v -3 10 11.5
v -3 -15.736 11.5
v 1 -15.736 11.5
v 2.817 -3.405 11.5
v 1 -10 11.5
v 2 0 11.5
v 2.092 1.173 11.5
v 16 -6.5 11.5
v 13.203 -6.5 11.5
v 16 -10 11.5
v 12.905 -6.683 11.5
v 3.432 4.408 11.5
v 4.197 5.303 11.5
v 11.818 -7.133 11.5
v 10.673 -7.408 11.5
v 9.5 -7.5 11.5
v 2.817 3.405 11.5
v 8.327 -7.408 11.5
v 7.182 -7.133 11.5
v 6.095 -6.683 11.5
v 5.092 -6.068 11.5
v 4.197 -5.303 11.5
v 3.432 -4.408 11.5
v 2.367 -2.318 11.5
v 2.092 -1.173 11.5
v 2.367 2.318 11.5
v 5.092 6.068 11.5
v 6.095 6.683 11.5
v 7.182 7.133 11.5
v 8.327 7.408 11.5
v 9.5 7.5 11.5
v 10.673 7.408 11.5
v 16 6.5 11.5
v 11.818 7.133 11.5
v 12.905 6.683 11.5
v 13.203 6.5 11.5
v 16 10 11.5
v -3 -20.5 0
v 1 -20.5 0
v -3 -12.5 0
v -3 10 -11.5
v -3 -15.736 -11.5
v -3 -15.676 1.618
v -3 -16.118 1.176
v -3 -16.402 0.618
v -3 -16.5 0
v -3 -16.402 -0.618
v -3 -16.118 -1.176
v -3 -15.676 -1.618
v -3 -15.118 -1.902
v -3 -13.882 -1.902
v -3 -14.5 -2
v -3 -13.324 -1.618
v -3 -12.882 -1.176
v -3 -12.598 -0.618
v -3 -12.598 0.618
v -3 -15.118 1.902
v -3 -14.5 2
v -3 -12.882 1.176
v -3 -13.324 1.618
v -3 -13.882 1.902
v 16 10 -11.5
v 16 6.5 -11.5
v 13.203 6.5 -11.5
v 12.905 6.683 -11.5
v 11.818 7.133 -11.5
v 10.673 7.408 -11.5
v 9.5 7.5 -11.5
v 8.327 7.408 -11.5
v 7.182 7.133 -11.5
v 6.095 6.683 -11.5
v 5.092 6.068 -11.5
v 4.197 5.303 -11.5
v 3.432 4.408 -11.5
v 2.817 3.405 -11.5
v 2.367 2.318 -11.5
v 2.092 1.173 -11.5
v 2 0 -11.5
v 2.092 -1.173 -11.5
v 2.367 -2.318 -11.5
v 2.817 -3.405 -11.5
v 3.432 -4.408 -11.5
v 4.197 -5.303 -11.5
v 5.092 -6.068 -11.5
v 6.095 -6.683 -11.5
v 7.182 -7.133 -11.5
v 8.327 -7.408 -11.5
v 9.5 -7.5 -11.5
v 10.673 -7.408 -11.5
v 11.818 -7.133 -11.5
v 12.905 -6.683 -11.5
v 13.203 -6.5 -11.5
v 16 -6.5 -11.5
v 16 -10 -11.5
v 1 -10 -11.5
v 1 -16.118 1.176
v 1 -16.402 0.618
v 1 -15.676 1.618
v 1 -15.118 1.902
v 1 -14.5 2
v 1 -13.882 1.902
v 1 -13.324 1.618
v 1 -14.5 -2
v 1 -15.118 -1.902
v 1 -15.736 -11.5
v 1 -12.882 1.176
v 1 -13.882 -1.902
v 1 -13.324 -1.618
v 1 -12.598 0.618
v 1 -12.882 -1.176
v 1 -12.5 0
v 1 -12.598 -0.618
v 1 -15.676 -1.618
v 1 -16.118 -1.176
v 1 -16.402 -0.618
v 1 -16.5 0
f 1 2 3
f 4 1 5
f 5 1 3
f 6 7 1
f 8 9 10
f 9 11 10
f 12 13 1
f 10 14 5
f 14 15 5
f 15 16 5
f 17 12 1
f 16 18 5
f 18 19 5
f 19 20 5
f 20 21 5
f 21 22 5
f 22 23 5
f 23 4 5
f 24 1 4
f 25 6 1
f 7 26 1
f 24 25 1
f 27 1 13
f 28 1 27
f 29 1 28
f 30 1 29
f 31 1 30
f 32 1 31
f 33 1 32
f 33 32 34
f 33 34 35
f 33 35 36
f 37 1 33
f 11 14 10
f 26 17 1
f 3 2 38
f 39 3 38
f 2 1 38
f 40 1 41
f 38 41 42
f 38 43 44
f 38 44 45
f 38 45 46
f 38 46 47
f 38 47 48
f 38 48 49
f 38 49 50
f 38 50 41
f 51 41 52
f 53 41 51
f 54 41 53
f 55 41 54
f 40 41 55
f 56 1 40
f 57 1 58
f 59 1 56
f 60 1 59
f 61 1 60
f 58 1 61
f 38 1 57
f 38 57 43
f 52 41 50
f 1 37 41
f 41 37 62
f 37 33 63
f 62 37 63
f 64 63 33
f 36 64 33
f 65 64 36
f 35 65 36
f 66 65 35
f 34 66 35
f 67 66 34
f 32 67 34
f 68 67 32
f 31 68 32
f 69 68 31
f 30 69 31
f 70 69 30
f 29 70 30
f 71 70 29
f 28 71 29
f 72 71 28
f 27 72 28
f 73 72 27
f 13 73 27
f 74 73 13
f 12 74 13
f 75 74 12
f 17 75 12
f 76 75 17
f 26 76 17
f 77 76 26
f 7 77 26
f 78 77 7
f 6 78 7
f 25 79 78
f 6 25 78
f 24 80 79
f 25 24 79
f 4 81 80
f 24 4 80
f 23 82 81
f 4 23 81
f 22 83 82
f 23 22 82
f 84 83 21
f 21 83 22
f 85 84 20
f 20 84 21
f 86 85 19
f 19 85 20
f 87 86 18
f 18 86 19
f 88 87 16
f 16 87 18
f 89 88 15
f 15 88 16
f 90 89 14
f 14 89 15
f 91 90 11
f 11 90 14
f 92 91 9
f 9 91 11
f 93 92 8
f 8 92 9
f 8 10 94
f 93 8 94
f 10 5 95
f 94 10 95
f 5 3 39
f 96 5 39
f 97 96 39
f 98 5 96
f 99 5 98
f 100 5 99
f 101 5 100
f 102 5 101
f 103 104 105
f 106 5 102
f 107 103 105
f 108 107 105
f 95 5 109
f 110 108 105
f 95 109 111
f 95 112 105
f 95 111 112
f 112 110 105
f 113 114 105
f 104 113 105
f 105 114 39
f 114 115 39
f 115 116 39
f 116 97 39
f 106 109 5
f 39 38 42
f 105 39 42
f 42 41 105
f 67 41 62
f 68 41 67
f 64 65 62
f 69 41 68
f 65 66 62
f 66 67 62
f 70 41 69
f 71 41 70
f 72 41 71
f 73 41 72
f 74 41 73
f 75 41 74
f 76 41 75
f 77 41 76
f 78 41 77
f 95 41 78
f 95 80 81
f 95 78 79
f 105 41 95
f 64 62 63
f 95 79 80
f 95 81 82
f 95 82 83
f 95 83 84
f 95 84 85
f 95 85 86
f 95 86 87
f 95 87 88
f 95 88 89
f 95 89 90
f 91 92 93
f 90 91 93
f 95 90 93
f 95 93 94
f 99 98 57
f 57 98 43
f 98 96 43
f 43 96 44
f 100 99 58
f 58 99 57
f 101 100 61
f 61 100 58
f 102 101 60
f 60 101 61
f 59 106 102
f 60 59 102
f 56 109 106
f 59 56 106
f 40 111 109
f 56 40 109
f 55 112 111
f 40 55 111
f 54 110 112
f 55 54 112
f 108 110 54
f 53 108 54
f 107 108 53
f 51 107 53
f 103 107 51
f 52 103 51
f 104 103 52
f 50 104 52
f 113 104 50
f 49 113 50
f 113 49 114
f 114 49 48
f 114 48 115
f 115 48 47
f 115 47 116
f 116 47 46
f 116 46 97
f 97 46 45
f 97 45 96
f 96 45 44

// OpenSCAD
// file: ../libs/linear_bearing.scad
//By Glen Chung, 2013.
//Dual licenced under Creative Commons Attribution-Share Alike 3.0 and LGPL2 or later

include <MCAD/units.scad>
include <MCAD/materials.scad>

LINEAR_BEARING_dr = 0;  //Inscribed circle
LINEAR_BEARING_D  = 1;  //Outer diameter
LINEAR_BEARING_L  = 2;  //Length
LINEAR_BEARING_B  = 3;  //Outer locking groove B
LINEAR_BEARING_D1 = 4;  //Outer locking groove D1
LINEAR_BEARING_W  = 5;  //W


// Common bearing names
LinearBearing = "LM8UU";

// Linear Bearing dimensions
//  model == "XXXXX"   ?   [    dr,      D,      L,        B,      D1,       W]:
function linearBearingDimensions(model) =
    model == "LM3UU"   ?   [  3*mm,   7*mm,  10*mm,   0.0*mm,   0.0*mm, 0.00*mm]:
    model == "LM4UU"   ?   [  4*mm,   8*mm,  12*mm,   0.0*mm,   0.0*mm, 0.00*mm]:
    model == "LM5UU"   ?   [  5*mm,  10*mm,  15*mm,  10.2*mm,   9.6*mm, 1.10*mm]:
    model == "LM6UU"   ?   [  6*mm,  12*mm,  19*mm,  13.5*mm,  11.5*mm, 1.10*mm]:
    model == "LM8SUU"  ?   [  8*mm,  15*mm,  17*mm,  11.5*mm,  14.3*mm, 1.10*mm]:
    model == "LM10UU"  ?   [ 10*mm,  19*mm,  29*mm,  22.0*mm,  18.0*mm, 1.30*mm]:
    model == "LM12UU"  ?   [ 12*mm,  21*mm,  30*mm,  23.0*mm,  20.0*mm, 1.30*mm]:
    model == "LM13UU"  ?   [ 13*mm,  23*mm,  32*mm,  23.0*mm,  22.0*mm, 1.30*mm]:
    model == "LM16UU"  ?   [ 16*mm,  28*mm,  37*mm,  26.5*mm,  27.0*mm, 1.60*mm]:
    model == "LM20UU"  ?   [ 20*mm,  32*mm,  42*mm,  30.5*mm,  30.5*mm, 1.60*mm]:
    model == "LM25UU"  ?   [ 25*mm,  40*mm,  59*mm,  41.0*mm,  38.0*mm, 1.85*mm]:
    model == "LM30UU"  ?   [ 30*mm,  45*mm,  64*mm,  44.5*mm,  43.0*mm, 1.85*mm]:
    model == "LM35UU"  ?   [ 35*mm,  52*mm,  70*mm,  49.5*mm,  49.0*mm, 2.10*mm]:
    model == "LM40UU"  ?   [ 40*mm,  60*mm,  80*mm,  60.5*mm,  57.0*mm, 2.10*mm]:
    model == "LM50UU"  ?   [ 50*mm,  80*mm, 100*mm,  74.0*mm,  76.5*mm, 2.60*mm]:
    model == "LM60UU"  ?   [ 60*mm,  90*mm, 110*mm,  85.0*mm,  86.5*mm, 3.15*mm]:
    model == "LM80UU"  ?   [ 80*mm, 120*mm, 140*mm, 105.5*mm, 116.0*mm, 4.15*mm]:
    model == "LM100UU" ?   [100*mm, 150*mm, 150*mm, 125.5*mm, 145.0*mm, 4.15*mm]:
  /*model == "LM8UU"   ?*/ [  8*mm,  15*mm,  24*mm,  17.5*mm,  14.3*mm, 1.10*mm];


function linearBearing_dr(model) = linearBearingDimensions(model)[LINEAR_BEARING_dr];
function linearBearing_D(model)  = linearBearingDimensions(model)[LINEAR_BEARING_D];
function linearBearing_L(model)  = linearBearingDimensions(model)[LINEAR_BEARING_L];
function linearBearing_B(model)  = linearBearingDimensions(model)[LINEAR_BEARING_B];
function linearBearing_D1(model) = linearBearingDimensions(model)[LINEAR_BEARING_D1];
function linearBearing_W(model)  = linearBearingDimensions(model)[LINEAR_BEARING_W];

module linearBearing(pos=[0,0,0], angle=[0,0,0], model=LinearBearing,
                material=Steel, sideMaterial=BlackPaint) {
  dr = linearBearing_dr(model);
  D  = linearBearing_D(model);
  L  = linearBearing_L(model);
  B  = linearBearing_B(model);
  D1 = linearBearing_D1(model);
  W  = linearBearing_W(model);

  innerRim = dr + (D - dr) * 0.2;
  outerRim = D - (D - dr) * 0.2;
  midSink = W/4;

  translate(pos) rotate(angle) union() {
    color(material)
      difference() {
        // Basic ring
        Ring([0,0,0], D, dr, L, material, material);

        if(W) {
          // Side shields
          Ring([0,0,-epsilon], outerRim, innerRim, L*epsilon+midSink, sideMaterial, material);
          Ring([0,0,L-midSink-epsilon], outerRim, innerRim, L*epsilon+midSink, sideMaterial, material);
          //Outer locking groove
          Ring([0,0,(L-B)/2], D+epsilon, outerRim+W/2, W, material, material);
          Ring([0,0,L-(L-B)/2], D+epsilon, outerRim+W/2, W, material, material);
        }
      }
      if(W)
        Ring([0,0,midSink], D-L*epsilon, dr+L*epsilon, L-midSink*2, sideMaterial, sideMaterial);
  }

  module Ring(pos, od, id, h, material, holeMaterial) {
    color(material) {
      translate(pos)
        difference() {
          cylinder(r=od/2, h=h);
          color(holeMaterial)
            translate([0,0,-10*epsilon])
              cylinder(r=id/2, h=h+20*epsilon);
        }
    }
  }

}


//examples
//linearBearing(model="LM8UU");
//linearBearing(model="LM10UU");
// main file
// LM8UU bushing holder modified for its use in Cyclone PCB Factory
// Modified to have only one center screw

// Derived by Carlosgs from:

// LM8UU bushing holder
// http://www.thingiverse.com/thing:23041 by thantik
// Inspired/derived from:

//http://www.thingiverse.com/thing:14942
//Which is derived from:
// http://www.thingiverse.com/thing:14814
//And is a drop-in replacement for:
//http://www.thingiverse.com/thing:10287

include <MCAD/materials.scad>
include <MCAD/metric_fastners.scad>
use <../libs/linear_bearing.scad>

// screw/nut dimensions
screw_dia = 4;
nut_dia = 8.5;
nut_height=2;

// main body dimensions
body_width = 20;
gap_width = 14;
body_height = 16;
body_length=23;
LM8UU_dia = 15.0;
screw_elevation = body_height-1.5;

//mounting plate dimensions
plate_height = 4;
plate_length=body_length;
plate_width=body_width+11;
screw_space_x = -14.5*2;
screw_space_y = 0;

module mount_plate()
{
	difference()
	{
		//bottom plate
		translate([-plate_width+body_width/2,-plate_length/2,-3])
			cube([plate_width,plate_length,plate_height]);

		//screw holes
		translate([screw_space_x/2,screw_space_y/2,-8.1])
			cylinder(r=screw_dia/2, h=plate_height+10, $fn=20);
//		translate([-screw_space_x/2,-screw_space_y/2,-8.1])
//			cylinder(r=screw_dia/2, h=plate_height+1, $fn=20);

		//nut traps


	}
}

module lm8uu_bearing_holder(with_extra_parts=false, exploded=false) {
	intersection() {
     rotate([90,0,90])
      difference()
		{
			union()
			{
				mount_plate();
		
				translate([-body_width/2,-body_length/2,0])
					cube([body_width,body_length,body_height]);
			}
		
			// bushing hole
			translate([0,0,LM8UU_dia/2+2])
				rotate([90,0,0])
					cylinder(r=LM8UU_dia/2, h=body_length+0.1, center=true, $fn=40);
		
			// top gap
			translate([0,0,20])
				cube([gap_width-1,body_length+0.1,20],center=true);
		}
	   rotate([90,45,90])
	     //cube([plate_width+3,plate_width+3,100],center=true);
	     cylinder(r=(plate_width+10)/2,h=100,center=true,$fn=8);
	}
  if(with_extra_parts) {
    if(exploded)
      lm8uu_bearing_holder_extras(exploded_distance=1.3*linearBearing_L("LM8UU"));
    else
      lm8uu_bearing_holder_extras(exploded_distance=0);
  }
}

module lm8uu_bearing_holder_extras(exploded_distance=0) {
  echo("PART: 1 x LM8UU linear ball bearing for Y axis");
  rotate([90,0,90]) translate([0,0,LM8UU_dia/2+2]) rotate([90,0,0])
    translate([0,0,exploded_distance])
      linearBearing(pos=[0,0,-linearBearing_L("LM8UU")/2], model="LM8UU");

  echo("PART: 1 x Self tapping screw 3.5 x 13 mm");
  translate([plate_height-3+0.2+0.5*exploded_distance,screw_space_x/2,0]) rotate([0,-90,0])
    color(Steel) csk_bolt(3.5, 13);
}

lm8uu_bearing_holder();
